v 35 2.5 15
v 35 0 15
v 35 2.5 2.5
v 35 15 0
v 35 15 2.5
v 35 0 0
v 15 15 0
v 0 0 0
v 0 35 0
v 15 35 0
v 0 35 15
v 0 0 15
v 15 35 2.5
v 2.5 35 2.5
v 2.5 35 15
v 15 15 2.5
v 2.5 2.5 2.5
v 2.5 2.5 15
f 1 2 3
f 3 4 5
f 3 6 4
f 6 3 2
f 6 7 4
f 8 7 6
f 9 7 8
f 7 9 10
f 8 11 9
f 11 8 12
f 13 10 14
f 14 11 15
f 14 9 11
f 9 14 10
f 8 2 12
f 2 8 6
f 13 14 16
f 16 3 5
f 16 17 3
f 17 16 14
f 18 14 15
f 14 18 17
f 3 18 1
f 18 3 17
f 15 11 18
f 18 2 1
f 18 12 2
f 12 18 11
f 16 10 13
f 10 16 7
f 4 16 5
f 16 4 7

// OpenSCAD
SIZE = 35;
WALL = 2.5;
HEIGHT = 15;

difference()
{
	cube(SIZE);
	translate([WALL,WALL,WALL])cube(SIZE);
	translate([0,0,HEIGHT])cube(SIZE);
	translate([HEIGHT,HEIGHT,0])cube(SIZE);
}
